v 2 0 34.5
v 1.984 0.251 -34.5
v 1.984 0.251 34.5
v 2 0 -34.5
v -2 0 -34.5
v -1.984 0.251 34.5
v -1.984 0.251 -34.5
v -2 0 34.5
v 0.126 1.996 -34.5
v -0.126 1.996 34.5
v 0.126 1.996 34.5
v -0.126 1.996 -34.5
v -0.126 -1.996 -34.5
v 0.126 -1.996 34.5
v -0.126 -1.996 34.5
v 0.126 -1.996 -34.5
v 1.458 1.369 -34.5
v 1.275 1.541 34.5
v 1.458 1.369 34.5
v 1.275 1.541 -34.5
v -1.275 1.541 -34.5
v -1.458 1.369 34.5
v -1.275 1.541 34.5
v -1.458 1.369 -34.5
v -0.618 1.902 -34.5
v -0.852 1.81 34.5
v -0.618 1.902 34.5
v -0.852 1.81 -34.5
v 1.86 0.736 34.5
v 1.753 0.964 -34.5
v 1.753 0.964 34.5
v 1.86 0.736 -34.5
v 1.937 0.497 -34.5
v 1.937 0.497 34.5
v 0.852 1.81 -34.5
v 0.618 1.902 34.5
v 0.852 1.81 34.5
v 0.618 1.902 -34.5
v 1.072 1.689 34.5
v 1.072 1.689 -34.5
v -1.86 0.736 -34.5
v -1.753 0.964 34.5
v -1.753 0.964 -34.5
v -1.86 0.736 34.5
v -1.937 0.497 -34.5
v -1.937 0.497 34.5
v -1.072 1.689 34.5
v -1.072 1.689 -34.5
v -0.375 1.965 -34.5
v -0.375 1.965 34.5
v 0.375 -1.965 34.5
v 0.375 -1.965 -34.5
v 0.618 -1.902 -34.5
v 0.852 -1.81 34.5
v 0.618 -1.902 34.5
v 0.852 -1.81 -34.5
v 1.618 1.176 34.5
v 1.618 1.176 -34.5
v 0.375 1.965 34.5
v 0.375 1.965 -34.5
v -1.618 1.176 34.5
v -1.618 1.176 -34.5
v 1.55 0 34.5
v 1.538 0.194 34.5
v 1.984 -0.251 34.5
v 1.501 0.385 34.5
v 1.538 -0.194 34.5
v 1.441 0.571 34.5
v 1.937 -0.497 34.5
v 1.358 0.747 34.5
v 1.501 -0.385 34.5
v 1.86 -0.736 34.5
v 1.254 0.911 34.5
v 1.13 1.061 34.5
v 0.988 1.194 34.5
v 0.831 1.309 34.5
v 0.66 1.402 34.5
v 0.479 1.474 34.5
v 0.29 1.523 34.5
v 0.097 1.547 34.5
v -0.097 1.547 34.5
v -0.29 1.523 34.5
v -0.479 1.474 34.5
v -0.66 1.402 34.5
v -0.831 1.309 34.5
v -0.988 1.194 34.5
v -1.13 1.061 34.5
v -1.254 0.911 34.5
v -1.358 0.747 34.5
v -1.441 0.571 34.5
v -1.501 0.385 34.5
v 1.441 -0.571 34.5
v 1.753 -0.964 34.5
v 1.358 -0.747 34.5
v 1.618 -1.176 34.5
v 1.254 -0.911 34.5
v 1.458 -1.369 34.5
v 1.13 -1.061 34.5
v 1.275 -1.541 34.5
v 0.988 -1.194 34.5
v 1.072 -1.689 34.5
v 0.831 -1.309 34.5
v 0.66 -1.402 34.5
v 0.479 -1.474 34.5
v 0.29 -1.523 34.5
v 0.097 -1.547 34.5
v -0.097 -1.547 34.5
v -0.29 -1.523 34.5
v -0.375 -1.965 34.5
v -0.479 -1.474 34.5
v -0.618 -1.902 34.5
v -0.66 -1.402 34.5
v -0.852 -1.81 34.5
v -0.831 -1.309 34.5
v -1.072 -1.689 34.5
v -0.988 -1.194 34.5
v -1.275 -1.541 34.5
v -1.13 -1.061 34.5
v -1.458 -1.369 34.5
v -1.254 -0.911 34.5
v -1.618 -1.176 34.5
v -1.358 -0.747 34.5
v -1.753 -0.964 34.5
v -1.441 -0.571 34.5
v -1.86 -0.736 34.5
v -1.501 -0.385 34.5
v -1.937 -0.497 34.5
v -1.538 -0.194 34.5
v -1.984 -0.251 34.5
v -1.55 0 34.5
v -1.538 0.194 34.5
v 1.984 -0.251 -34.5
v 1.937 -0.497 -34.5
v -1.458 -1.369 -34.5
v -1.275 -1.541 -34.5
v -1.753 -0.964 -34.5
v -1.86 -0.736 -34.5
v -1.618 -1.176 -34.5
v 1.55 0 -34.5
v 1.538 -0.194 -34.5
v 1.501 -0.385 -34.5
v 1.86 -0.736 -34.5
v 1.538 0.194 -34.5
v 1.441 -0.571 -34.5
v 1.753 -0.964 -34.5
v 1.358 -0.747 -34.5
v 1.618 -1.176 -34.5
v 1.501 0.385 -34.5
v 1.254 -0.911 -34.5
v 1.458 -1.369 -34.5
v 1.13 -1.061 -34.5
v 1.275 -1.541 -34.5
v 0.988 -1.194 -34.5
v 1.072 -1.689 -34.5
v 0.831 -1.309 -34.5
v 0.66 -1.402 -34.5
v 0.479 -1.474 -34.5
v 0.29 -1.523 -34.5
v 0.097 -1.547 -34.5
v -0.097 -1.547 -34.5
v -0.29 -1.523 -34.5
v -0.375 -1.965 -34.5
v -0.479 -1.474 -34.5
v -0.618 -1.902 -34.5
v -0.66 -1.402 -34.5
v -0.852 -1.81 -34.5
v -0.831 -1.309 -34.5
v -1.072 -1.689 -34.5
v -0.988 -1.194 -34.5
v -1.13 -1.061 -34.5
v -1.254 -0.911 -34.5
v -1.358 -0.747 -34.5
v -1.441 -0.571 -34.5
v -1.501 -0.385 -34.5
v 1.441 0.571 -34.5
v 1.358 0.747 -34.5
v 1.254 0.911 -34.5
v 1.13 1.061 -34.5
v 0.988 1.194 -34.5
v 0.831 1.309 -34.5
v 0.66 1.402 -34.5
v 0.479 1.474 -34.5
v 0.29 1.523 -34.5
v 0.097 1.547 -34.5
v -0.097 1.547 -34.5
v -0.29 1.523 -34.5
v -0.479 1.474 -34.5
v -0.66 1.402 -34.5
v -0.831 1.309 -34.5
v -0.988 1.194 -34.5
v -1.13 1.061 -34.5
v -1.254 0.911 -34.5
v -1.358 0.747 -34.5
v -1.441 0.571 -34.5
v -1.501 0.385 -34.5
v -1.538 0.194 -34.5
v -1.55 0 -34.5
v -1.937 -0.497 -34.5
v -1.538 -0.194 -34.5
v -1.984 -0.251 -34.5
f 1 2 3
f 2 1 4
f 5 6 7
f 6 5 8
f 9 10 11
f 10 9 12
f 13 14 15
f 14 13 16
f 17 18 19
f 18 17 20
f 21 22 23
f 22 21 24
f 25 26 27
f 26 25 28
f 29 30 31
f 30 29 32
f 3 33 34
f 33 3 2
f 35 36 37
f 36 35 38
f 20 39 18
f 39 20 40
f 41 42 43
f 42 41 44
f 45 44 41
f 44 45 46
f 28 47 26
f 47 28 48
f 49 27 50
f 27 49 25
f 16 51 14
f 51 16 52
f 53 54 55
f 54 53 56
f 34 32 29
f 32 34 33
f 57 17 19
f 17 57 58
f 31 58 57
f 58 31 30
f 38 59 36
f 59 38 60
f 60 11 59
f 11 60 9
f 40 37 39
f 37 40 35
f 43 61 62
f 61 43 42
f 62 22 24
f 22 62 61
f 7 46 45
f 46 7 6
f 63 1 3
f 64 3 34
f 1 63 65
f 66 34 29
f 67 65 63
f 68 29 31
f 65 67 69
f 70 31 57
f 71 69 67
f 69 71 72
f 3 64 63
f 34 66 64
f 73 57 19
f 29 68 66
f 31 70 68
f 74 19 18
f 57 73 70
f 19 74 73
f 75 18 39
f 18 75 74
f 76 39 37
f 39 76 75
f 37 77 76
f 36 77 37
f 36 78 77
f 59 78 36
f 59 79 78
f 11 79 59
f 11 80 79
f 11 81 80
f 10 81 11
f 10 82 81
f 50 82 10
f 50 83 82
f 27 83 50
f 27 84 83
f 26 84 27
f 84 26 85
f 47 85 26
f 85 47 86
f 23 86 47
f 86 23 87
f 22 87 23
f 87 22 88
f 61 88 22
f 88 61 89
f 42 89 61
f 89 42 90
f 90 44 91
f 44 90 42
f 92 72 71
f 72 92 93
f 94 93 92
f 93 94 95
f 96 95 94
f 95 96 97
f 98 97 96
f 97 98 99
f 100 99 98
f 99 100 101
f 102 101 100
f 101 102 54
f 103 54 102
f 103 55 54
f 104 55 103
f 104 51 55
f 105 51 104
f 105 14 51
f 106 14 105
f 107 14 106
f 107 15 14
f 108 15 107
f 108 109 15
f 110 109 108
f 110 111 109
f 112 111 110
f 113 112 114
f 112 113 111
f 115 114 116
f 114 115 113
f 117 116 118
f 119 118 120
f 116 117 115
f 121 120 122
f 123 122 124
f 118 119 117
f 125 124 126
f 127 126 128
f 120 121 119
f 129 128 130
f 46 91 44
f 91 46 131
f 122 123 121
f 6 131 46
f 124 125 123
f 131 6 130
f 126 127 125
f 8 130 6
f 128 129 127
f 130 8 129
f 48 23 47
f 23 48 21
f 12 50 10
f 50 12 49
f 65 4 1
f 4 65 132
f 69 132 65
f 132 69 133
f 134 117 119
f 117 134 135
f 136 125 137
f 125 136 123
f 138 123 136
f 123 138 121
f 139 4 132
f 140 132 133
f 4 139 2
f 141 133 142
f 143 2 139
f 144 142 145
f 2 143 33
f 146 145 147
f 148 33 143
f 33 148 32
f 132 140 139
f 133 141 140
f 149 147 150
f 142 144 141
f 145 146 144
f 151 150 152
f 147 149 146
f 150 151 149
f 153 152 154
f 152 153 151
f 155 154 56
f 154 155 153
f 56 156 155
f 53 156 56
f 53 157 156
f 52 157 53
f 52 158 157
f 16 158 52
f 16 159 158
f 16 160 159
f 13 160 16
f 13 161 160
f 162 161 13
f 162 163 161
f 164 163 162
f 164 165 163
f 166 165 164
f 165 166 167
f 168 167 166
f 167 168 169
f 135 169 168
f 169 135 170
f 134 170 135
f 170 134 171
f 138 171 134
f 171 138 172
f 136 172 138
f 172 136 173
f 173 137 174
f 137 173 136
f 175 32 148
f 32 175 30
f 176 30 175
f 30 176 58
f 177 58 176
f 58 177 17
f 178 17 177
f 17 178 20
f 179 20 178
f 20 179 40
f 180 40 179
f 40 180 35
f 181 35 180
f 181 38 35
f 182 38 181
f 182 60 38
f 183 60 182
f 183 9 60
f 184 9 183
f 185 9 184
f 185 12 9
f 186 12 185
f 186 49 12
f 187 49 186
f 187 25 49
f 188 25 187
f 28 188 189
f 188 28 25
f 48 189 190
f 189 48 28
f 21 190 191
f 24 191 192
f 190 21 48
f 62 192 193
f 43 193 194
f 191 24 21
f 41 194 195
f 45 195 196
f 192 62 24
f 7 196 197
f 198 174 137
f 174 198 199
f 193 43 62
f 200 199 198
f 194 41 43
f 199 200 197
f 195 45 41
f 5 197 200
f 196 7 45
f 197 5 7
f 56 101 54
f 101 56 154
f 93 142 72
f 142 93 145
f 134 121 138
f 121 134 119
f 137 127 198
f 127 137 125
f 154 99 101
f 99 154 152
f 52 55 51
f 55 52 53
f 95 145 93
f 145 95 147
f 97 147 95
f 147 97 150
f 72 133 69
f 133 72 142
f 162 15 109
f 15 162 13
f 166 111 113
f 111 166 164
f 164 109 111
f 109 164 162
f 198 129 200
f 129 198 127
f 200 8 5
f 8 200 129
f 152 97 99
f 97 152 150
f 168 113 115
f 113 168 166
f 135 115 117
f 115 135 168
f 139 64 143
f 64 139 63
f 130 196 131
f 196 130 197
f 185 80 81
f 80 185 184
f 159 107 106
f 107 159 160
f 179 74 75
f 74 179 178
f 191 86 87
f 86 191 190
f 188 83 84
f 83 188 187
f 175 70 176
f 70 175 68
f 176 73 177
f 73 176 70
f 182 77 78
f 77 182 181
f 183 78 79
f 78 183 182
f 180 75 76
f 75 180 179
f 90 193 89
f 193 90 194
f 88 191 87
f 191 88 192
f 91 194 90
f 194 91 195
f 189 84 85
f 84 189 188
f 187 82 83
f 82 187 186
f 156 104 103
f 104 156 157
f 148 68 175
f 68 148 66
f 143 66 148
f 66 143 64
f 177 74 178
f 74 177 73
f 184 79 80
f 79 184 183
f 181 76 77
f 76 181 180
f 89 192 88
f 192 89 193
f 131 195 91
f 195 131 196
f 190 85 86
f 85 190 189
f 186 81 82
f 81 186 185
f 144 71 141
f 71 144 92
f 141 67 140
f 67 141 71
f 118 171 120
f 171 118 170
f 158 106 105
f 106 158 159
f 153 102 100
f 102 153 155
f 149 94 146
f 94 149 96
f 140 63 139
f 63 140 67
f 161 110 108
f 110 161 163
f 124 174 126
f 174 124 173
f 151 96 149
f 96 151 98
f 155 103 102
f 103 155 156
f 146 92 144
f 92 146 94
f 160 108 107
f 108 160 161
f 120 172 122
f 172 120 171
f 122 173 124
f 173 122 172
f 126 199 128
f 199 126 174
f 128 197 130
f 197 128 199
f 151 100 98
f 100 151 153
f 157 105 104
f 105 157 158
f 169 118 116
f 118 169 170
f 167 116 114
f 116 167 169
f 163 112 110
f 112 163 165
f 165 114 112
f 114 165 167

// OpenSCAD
$fn = 50;


difference() {
	union() {
		translate(v = [0, 0, -34.5000000000]) {
			cylinder(h = 69, r = 2.0000000000);
		}
	}
	union() {
		translate(v = [0, 0, -100.0000000000]) {
			cylinder(h = 200, r = 1.5500000000);
		}
	}
}
